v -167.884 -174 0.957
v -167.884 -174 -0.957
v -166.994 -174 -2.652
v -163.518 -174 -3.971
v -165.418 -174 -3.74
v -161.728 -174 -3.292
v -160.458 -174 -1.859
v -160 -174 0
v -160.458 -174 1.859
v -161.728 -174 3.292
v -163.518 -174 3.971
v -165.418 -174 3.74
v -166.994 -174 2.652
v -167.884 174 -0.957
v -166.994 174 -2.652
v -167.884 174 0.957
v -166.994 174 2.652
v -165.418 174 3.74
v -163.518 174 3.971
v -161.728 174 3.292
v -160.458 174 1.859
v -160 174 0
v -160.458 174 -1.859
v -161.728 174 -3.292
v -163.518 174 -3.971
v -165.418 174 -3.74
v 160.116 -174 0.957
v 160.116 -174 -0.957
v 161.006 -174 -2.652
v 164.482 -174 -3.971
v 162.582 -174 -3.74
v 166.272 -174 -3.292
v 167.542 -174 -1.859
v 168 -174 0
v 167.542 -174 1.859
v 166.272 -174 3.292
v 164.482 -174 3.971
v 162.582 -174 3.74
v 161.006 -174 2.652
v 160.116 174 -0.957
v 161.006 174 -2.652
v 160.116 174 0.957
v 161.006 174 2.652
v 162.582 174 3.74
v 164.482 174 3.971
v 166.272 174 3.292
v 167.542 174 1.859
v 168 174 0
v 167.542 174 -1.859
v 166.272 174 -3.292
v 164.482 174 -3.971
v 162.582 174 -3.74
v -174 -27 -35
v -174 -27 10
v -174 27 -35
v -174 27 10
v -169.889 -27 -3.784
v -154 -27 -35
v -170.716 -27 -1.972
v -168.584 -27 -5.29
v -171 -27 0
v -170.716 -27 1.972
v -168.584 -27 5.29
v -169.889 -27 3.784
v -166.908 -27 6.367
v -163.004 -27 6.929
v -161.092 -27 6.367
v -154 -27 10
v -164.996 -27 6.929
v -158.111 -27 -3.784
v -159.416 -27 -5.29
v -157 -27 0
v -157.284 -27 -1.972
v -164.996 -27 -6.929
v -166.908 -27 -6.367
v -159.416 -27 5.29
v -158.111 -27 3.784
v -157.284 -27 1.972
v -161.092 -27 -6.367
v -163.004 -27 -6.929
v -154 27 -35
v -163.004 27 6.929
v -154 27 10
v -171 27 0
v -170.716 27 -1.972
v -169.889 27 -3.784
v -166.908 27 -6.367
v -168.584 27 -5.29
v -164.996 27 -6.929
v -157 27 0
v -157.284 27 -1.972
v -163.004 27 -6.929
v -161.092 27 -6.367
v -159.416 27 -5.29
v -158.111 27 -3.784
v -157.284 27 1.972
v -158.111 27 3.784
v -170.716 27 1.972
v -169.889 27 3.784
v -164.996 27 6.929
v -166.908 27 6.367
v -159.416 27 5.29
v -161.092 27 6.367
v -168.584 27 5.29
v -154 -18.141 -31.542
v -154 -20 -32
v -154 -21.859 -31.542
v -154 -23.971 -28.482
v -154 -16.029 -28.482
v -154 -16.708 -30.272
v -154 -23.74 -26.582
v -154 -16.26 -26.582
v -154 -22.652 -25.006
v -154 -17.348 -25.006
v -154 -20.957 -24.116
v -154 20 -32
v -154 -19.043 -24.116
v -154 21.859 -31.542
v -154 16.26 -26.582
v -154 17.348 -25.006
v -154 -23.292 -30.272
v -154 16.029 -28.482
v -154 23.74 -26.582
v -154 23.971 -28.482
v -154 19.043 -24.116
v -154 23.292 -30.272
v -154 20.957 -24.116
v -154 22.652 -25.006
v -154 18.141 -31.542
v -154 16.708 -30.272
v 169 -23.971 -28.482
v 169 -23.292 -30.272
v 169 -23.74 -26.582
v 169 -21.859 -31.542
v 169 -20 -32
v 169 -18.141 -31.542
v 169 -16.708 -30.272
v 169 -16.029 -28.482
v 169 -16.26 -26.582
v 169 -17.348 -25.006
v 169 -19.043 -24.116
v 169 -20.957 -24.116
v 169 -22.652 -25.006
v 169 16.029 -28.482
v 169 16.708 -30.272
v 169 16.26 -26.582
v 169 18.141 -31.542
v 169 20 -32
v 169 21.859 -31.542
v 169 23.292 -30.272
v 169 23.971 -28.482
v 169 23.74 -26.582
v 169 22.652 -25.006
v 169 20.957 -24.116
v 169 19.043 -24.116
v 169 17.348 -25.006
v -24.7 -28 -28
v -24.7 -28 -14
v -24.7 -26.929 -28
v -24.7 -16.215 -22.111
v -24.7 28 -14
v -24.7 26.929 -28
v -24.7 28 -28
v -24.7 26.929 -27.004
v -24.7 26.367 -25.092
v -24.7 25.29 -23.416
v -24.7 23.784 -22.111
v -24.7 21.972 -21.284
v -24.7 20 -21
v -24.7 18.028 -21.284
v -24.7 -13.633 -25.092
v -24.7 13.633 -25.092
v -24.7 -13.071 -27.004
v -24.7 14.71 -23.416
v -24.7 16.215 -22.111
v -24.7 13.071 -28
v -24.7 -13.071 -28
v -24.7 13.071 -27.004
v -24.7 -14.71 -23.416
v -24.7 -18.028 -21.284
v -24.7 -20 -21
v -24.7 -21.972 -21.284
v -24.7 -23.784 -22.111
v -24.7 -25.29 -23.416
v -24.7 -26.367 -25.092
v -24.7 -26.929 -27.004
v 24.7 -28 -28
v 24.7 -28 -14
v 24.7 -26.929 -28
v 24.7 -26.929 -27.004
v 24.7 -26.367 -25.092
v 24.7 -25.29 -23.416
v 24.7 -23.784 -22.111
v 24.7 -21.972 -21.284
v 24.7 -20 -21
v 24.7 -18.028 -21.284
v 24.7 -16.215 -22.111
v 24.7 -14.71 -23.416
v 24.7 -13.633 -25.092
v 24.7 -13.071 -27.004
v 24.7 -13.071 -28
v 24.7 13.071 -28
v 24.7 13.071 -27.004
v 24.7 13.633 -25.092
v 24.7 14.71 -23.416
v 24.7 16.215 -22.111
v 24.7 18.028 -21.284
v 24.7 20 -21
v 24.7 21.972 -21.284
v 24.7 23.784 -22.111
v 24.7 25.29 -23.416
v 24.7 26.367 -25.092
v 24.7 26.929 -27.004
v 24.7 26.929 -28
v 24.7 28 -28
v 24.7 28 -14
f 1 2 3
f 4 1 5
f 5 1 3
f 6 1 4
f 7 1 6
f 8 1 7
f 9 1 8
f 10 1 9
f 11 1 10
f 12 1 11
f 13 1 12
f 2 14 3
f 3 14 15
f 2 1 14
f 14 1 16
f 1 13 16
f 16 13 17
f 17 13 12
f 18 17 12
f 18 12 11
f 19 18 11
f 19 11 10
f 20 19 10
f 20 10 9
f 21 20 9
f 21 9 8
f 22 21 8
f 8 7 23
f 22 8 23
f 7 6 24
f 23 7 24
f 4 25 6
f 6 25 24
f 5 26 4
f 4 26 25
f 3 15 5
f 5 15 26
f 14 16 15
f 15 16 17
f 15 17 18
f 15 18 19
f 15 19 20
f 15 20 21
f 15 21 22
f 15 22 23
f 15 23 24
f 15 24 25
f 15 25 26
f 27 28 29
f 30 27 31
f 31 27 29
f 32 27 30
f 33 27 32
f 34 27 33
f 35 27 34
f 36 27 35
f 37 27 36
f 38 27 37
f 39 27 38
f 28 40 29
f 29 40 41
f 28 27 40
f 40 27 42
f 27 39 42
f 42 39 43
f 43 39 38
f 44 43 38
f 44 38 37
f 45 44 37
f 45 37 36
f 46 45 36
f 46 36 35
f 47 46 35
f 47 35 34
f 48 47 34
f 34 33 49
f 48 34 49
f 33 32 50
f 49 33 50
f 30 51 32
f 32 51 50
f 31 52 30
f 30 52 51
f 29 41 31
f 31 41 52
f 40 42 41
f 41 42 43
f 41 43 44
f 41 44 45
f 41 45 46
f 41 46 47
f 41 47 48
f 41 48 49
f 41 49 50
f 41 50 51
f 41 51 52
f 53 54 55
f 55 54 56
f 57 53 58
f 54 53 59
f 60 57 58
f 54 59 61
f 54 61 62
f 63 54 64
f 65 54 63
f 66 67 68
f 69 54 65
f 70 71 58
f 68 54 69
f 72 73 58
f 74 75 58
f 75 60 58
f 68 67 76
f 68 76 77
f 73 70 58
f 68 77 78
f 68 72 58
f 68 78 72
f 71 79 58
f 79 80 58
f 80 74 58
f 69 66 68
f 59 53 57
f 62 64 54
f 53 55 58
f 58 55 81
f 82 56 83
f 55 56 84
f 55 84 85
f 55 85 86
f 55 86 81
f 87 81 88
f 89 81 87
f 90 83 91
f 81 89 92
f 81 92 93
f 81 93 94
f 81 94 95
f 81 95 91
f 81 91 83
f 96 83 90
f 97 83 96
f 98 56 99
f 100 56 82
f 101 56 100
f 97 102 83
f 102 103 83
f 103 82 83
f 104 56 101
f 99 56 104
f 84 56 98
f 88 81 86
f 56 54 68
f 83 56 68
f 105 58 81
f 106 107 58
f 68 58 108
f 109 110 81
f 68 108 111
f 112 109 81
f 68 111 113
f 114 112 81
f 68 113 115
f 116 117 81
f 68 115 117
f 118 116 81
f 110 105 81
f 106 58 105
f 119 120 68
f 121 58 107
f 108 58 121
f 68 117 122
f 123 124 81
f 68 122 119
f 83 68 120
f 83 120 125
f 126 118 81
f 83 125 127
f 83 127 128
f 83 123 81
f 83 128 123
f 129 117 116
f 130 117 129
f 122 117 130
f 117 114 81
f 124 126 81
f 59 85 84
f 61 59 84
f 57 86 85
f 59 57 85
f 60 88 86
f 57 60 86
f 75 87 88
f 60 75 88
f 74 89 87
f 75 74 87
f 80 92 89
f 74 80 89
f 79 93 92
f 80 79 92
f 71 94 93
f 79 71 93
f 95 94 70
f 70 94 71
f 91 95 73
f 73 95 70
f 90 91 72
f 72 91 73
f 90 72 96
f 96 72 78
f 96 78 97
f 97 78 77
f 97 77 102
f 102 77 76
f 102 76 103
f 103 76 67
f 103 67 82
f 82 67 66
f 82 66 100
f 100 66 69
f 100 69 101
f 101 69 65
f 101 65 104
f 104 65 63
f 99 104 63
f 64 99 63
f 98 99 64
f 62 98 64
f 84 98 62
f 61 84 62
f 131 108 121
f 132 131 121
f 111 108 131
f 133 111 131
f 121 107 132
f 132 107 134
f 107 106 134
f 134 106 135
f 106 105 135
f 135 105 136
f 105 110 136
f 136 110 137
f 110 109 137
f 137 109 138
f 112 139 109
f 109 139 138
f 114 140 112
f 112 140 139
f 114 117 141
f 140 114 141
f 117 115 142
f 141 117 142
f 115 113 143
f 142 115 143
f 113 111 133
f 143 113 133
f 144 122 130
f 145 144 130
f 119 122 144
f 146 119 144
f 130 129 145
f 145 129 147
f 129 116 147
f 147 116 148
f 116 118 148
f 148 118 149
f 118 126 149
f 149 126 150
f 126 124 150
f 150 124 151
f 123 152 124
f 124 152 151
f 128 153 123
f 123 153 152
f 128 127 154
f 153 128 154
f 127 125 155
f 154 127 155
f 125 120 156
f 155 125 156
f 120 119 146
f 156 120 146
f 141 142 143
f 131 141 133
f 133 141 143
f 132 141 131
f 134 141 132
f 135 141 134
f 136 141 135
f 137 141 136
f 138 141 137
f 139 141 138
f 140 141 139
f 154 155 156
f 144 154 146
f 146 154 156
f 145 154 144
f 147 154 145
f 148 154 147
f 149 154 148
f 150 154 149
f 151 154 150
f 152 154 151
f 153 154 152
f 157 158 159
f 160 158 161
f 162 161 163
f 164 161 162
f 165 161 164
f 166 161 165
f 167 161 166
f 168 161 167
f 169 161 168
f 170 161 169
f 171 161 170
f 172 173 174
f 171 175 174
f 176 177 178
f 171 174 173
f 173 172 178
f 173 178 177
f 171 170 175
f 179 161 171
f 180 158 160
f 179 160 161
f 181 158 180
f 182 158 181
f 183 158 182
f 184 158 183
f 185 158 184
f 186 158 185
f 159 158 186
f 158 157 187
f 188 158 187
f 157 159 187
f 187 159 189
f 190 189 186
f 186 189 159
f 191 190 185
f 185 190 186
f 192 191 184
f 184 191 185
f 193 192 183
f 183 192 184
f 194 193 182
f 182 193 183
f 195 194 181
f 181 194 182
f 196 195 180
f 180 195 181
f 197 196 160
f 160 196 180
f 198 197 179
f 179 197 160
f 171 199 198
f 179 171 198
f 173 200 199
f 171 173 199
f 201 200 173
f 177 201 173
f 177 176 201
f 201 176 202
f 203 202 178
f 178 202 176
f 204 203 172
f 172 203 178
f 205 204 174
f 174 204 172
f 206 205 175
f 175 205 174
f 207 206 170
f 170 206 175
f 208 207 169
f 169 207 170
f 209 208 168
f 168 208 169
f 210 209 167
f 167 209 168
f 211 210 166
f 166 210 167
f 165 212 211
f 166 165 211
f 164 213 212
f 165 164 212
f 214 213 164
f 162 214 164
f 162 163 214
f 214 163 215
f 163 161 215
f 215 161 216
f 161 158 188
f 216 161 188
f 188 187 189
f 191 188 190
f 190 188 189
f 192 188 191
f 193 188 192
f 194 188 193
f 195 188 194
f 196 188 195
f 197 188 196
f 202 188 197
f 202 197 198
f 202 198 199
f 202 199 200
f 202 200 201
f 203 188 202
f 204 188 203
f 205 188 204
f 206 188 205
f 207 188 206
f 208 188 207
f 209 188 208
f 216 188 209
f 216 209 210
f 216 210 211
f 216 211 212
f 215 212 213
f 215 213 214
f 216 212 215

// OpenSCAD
union() {
	union() {
		union() {
			union() {
				translate(v = [-164, 0, 0]) {
					rotate(a = [90, 0, 0]) {
						translate(v = [0, 0, -174]) {
							cylinder(h = 348, r = 4);
						}
					}
				}
				translate(v = [164, 0, 0]) {
					rotate(a = [90, 0, 0]) {
						translate(v = [0, 0, -174]) {
							cylinder(h = 348, r = 4);
						}
					}
				}
			}
			translate(v = [0, 0, -28]) {
				translate(v = [0, -20, 0]) {
					rotate(a = [0, 90, 0]) {
						translate(v = [0, 0, -168]) {
							cylinder(h = 337, r = 4);
						}
					}
				}
			}
		}
		translate(v = [0, 0, -28]) {
			translate(v = [0, 20, 0]) {
				rotate(a = [0, 90, 0]) {
					translate(v = [0, 0, -168]) {
						cylinder(h = 337, r = 4);
					}
				}
			}
		}
	}
	union() {
		translate(v = [0, 0, -28]) {
			difference() {
				difference() {
					translate(v = [0, 0, 7]) {
						cube(center = true, size = [49.4000000000, 56, 14]);
					}
					translate(v = [0, -20, 0]) {
						rotate(a = [0, 90, 0]) {
							cylinder(h = 51.4000000000, r = 7, center = true);
						}
					}
				}
				translate(v = [0, 20, 0]) {
					rotate(a = [0, 90, 0]) {
						cylinder(h = 51.4000000000, r = 7, center = true);
					}
				}
			}
		}
		translate(v = [-164, 0, 0]) {
			difference() {
				translate(v = [-10, -27, -35]) {
					cube(size = [20, 54, 45]);
				}
				rotate(a = [90, 0, 0]) {
					cylinder(h = 56, r = 7, center = true);
				}
			}
		}
	}
}
